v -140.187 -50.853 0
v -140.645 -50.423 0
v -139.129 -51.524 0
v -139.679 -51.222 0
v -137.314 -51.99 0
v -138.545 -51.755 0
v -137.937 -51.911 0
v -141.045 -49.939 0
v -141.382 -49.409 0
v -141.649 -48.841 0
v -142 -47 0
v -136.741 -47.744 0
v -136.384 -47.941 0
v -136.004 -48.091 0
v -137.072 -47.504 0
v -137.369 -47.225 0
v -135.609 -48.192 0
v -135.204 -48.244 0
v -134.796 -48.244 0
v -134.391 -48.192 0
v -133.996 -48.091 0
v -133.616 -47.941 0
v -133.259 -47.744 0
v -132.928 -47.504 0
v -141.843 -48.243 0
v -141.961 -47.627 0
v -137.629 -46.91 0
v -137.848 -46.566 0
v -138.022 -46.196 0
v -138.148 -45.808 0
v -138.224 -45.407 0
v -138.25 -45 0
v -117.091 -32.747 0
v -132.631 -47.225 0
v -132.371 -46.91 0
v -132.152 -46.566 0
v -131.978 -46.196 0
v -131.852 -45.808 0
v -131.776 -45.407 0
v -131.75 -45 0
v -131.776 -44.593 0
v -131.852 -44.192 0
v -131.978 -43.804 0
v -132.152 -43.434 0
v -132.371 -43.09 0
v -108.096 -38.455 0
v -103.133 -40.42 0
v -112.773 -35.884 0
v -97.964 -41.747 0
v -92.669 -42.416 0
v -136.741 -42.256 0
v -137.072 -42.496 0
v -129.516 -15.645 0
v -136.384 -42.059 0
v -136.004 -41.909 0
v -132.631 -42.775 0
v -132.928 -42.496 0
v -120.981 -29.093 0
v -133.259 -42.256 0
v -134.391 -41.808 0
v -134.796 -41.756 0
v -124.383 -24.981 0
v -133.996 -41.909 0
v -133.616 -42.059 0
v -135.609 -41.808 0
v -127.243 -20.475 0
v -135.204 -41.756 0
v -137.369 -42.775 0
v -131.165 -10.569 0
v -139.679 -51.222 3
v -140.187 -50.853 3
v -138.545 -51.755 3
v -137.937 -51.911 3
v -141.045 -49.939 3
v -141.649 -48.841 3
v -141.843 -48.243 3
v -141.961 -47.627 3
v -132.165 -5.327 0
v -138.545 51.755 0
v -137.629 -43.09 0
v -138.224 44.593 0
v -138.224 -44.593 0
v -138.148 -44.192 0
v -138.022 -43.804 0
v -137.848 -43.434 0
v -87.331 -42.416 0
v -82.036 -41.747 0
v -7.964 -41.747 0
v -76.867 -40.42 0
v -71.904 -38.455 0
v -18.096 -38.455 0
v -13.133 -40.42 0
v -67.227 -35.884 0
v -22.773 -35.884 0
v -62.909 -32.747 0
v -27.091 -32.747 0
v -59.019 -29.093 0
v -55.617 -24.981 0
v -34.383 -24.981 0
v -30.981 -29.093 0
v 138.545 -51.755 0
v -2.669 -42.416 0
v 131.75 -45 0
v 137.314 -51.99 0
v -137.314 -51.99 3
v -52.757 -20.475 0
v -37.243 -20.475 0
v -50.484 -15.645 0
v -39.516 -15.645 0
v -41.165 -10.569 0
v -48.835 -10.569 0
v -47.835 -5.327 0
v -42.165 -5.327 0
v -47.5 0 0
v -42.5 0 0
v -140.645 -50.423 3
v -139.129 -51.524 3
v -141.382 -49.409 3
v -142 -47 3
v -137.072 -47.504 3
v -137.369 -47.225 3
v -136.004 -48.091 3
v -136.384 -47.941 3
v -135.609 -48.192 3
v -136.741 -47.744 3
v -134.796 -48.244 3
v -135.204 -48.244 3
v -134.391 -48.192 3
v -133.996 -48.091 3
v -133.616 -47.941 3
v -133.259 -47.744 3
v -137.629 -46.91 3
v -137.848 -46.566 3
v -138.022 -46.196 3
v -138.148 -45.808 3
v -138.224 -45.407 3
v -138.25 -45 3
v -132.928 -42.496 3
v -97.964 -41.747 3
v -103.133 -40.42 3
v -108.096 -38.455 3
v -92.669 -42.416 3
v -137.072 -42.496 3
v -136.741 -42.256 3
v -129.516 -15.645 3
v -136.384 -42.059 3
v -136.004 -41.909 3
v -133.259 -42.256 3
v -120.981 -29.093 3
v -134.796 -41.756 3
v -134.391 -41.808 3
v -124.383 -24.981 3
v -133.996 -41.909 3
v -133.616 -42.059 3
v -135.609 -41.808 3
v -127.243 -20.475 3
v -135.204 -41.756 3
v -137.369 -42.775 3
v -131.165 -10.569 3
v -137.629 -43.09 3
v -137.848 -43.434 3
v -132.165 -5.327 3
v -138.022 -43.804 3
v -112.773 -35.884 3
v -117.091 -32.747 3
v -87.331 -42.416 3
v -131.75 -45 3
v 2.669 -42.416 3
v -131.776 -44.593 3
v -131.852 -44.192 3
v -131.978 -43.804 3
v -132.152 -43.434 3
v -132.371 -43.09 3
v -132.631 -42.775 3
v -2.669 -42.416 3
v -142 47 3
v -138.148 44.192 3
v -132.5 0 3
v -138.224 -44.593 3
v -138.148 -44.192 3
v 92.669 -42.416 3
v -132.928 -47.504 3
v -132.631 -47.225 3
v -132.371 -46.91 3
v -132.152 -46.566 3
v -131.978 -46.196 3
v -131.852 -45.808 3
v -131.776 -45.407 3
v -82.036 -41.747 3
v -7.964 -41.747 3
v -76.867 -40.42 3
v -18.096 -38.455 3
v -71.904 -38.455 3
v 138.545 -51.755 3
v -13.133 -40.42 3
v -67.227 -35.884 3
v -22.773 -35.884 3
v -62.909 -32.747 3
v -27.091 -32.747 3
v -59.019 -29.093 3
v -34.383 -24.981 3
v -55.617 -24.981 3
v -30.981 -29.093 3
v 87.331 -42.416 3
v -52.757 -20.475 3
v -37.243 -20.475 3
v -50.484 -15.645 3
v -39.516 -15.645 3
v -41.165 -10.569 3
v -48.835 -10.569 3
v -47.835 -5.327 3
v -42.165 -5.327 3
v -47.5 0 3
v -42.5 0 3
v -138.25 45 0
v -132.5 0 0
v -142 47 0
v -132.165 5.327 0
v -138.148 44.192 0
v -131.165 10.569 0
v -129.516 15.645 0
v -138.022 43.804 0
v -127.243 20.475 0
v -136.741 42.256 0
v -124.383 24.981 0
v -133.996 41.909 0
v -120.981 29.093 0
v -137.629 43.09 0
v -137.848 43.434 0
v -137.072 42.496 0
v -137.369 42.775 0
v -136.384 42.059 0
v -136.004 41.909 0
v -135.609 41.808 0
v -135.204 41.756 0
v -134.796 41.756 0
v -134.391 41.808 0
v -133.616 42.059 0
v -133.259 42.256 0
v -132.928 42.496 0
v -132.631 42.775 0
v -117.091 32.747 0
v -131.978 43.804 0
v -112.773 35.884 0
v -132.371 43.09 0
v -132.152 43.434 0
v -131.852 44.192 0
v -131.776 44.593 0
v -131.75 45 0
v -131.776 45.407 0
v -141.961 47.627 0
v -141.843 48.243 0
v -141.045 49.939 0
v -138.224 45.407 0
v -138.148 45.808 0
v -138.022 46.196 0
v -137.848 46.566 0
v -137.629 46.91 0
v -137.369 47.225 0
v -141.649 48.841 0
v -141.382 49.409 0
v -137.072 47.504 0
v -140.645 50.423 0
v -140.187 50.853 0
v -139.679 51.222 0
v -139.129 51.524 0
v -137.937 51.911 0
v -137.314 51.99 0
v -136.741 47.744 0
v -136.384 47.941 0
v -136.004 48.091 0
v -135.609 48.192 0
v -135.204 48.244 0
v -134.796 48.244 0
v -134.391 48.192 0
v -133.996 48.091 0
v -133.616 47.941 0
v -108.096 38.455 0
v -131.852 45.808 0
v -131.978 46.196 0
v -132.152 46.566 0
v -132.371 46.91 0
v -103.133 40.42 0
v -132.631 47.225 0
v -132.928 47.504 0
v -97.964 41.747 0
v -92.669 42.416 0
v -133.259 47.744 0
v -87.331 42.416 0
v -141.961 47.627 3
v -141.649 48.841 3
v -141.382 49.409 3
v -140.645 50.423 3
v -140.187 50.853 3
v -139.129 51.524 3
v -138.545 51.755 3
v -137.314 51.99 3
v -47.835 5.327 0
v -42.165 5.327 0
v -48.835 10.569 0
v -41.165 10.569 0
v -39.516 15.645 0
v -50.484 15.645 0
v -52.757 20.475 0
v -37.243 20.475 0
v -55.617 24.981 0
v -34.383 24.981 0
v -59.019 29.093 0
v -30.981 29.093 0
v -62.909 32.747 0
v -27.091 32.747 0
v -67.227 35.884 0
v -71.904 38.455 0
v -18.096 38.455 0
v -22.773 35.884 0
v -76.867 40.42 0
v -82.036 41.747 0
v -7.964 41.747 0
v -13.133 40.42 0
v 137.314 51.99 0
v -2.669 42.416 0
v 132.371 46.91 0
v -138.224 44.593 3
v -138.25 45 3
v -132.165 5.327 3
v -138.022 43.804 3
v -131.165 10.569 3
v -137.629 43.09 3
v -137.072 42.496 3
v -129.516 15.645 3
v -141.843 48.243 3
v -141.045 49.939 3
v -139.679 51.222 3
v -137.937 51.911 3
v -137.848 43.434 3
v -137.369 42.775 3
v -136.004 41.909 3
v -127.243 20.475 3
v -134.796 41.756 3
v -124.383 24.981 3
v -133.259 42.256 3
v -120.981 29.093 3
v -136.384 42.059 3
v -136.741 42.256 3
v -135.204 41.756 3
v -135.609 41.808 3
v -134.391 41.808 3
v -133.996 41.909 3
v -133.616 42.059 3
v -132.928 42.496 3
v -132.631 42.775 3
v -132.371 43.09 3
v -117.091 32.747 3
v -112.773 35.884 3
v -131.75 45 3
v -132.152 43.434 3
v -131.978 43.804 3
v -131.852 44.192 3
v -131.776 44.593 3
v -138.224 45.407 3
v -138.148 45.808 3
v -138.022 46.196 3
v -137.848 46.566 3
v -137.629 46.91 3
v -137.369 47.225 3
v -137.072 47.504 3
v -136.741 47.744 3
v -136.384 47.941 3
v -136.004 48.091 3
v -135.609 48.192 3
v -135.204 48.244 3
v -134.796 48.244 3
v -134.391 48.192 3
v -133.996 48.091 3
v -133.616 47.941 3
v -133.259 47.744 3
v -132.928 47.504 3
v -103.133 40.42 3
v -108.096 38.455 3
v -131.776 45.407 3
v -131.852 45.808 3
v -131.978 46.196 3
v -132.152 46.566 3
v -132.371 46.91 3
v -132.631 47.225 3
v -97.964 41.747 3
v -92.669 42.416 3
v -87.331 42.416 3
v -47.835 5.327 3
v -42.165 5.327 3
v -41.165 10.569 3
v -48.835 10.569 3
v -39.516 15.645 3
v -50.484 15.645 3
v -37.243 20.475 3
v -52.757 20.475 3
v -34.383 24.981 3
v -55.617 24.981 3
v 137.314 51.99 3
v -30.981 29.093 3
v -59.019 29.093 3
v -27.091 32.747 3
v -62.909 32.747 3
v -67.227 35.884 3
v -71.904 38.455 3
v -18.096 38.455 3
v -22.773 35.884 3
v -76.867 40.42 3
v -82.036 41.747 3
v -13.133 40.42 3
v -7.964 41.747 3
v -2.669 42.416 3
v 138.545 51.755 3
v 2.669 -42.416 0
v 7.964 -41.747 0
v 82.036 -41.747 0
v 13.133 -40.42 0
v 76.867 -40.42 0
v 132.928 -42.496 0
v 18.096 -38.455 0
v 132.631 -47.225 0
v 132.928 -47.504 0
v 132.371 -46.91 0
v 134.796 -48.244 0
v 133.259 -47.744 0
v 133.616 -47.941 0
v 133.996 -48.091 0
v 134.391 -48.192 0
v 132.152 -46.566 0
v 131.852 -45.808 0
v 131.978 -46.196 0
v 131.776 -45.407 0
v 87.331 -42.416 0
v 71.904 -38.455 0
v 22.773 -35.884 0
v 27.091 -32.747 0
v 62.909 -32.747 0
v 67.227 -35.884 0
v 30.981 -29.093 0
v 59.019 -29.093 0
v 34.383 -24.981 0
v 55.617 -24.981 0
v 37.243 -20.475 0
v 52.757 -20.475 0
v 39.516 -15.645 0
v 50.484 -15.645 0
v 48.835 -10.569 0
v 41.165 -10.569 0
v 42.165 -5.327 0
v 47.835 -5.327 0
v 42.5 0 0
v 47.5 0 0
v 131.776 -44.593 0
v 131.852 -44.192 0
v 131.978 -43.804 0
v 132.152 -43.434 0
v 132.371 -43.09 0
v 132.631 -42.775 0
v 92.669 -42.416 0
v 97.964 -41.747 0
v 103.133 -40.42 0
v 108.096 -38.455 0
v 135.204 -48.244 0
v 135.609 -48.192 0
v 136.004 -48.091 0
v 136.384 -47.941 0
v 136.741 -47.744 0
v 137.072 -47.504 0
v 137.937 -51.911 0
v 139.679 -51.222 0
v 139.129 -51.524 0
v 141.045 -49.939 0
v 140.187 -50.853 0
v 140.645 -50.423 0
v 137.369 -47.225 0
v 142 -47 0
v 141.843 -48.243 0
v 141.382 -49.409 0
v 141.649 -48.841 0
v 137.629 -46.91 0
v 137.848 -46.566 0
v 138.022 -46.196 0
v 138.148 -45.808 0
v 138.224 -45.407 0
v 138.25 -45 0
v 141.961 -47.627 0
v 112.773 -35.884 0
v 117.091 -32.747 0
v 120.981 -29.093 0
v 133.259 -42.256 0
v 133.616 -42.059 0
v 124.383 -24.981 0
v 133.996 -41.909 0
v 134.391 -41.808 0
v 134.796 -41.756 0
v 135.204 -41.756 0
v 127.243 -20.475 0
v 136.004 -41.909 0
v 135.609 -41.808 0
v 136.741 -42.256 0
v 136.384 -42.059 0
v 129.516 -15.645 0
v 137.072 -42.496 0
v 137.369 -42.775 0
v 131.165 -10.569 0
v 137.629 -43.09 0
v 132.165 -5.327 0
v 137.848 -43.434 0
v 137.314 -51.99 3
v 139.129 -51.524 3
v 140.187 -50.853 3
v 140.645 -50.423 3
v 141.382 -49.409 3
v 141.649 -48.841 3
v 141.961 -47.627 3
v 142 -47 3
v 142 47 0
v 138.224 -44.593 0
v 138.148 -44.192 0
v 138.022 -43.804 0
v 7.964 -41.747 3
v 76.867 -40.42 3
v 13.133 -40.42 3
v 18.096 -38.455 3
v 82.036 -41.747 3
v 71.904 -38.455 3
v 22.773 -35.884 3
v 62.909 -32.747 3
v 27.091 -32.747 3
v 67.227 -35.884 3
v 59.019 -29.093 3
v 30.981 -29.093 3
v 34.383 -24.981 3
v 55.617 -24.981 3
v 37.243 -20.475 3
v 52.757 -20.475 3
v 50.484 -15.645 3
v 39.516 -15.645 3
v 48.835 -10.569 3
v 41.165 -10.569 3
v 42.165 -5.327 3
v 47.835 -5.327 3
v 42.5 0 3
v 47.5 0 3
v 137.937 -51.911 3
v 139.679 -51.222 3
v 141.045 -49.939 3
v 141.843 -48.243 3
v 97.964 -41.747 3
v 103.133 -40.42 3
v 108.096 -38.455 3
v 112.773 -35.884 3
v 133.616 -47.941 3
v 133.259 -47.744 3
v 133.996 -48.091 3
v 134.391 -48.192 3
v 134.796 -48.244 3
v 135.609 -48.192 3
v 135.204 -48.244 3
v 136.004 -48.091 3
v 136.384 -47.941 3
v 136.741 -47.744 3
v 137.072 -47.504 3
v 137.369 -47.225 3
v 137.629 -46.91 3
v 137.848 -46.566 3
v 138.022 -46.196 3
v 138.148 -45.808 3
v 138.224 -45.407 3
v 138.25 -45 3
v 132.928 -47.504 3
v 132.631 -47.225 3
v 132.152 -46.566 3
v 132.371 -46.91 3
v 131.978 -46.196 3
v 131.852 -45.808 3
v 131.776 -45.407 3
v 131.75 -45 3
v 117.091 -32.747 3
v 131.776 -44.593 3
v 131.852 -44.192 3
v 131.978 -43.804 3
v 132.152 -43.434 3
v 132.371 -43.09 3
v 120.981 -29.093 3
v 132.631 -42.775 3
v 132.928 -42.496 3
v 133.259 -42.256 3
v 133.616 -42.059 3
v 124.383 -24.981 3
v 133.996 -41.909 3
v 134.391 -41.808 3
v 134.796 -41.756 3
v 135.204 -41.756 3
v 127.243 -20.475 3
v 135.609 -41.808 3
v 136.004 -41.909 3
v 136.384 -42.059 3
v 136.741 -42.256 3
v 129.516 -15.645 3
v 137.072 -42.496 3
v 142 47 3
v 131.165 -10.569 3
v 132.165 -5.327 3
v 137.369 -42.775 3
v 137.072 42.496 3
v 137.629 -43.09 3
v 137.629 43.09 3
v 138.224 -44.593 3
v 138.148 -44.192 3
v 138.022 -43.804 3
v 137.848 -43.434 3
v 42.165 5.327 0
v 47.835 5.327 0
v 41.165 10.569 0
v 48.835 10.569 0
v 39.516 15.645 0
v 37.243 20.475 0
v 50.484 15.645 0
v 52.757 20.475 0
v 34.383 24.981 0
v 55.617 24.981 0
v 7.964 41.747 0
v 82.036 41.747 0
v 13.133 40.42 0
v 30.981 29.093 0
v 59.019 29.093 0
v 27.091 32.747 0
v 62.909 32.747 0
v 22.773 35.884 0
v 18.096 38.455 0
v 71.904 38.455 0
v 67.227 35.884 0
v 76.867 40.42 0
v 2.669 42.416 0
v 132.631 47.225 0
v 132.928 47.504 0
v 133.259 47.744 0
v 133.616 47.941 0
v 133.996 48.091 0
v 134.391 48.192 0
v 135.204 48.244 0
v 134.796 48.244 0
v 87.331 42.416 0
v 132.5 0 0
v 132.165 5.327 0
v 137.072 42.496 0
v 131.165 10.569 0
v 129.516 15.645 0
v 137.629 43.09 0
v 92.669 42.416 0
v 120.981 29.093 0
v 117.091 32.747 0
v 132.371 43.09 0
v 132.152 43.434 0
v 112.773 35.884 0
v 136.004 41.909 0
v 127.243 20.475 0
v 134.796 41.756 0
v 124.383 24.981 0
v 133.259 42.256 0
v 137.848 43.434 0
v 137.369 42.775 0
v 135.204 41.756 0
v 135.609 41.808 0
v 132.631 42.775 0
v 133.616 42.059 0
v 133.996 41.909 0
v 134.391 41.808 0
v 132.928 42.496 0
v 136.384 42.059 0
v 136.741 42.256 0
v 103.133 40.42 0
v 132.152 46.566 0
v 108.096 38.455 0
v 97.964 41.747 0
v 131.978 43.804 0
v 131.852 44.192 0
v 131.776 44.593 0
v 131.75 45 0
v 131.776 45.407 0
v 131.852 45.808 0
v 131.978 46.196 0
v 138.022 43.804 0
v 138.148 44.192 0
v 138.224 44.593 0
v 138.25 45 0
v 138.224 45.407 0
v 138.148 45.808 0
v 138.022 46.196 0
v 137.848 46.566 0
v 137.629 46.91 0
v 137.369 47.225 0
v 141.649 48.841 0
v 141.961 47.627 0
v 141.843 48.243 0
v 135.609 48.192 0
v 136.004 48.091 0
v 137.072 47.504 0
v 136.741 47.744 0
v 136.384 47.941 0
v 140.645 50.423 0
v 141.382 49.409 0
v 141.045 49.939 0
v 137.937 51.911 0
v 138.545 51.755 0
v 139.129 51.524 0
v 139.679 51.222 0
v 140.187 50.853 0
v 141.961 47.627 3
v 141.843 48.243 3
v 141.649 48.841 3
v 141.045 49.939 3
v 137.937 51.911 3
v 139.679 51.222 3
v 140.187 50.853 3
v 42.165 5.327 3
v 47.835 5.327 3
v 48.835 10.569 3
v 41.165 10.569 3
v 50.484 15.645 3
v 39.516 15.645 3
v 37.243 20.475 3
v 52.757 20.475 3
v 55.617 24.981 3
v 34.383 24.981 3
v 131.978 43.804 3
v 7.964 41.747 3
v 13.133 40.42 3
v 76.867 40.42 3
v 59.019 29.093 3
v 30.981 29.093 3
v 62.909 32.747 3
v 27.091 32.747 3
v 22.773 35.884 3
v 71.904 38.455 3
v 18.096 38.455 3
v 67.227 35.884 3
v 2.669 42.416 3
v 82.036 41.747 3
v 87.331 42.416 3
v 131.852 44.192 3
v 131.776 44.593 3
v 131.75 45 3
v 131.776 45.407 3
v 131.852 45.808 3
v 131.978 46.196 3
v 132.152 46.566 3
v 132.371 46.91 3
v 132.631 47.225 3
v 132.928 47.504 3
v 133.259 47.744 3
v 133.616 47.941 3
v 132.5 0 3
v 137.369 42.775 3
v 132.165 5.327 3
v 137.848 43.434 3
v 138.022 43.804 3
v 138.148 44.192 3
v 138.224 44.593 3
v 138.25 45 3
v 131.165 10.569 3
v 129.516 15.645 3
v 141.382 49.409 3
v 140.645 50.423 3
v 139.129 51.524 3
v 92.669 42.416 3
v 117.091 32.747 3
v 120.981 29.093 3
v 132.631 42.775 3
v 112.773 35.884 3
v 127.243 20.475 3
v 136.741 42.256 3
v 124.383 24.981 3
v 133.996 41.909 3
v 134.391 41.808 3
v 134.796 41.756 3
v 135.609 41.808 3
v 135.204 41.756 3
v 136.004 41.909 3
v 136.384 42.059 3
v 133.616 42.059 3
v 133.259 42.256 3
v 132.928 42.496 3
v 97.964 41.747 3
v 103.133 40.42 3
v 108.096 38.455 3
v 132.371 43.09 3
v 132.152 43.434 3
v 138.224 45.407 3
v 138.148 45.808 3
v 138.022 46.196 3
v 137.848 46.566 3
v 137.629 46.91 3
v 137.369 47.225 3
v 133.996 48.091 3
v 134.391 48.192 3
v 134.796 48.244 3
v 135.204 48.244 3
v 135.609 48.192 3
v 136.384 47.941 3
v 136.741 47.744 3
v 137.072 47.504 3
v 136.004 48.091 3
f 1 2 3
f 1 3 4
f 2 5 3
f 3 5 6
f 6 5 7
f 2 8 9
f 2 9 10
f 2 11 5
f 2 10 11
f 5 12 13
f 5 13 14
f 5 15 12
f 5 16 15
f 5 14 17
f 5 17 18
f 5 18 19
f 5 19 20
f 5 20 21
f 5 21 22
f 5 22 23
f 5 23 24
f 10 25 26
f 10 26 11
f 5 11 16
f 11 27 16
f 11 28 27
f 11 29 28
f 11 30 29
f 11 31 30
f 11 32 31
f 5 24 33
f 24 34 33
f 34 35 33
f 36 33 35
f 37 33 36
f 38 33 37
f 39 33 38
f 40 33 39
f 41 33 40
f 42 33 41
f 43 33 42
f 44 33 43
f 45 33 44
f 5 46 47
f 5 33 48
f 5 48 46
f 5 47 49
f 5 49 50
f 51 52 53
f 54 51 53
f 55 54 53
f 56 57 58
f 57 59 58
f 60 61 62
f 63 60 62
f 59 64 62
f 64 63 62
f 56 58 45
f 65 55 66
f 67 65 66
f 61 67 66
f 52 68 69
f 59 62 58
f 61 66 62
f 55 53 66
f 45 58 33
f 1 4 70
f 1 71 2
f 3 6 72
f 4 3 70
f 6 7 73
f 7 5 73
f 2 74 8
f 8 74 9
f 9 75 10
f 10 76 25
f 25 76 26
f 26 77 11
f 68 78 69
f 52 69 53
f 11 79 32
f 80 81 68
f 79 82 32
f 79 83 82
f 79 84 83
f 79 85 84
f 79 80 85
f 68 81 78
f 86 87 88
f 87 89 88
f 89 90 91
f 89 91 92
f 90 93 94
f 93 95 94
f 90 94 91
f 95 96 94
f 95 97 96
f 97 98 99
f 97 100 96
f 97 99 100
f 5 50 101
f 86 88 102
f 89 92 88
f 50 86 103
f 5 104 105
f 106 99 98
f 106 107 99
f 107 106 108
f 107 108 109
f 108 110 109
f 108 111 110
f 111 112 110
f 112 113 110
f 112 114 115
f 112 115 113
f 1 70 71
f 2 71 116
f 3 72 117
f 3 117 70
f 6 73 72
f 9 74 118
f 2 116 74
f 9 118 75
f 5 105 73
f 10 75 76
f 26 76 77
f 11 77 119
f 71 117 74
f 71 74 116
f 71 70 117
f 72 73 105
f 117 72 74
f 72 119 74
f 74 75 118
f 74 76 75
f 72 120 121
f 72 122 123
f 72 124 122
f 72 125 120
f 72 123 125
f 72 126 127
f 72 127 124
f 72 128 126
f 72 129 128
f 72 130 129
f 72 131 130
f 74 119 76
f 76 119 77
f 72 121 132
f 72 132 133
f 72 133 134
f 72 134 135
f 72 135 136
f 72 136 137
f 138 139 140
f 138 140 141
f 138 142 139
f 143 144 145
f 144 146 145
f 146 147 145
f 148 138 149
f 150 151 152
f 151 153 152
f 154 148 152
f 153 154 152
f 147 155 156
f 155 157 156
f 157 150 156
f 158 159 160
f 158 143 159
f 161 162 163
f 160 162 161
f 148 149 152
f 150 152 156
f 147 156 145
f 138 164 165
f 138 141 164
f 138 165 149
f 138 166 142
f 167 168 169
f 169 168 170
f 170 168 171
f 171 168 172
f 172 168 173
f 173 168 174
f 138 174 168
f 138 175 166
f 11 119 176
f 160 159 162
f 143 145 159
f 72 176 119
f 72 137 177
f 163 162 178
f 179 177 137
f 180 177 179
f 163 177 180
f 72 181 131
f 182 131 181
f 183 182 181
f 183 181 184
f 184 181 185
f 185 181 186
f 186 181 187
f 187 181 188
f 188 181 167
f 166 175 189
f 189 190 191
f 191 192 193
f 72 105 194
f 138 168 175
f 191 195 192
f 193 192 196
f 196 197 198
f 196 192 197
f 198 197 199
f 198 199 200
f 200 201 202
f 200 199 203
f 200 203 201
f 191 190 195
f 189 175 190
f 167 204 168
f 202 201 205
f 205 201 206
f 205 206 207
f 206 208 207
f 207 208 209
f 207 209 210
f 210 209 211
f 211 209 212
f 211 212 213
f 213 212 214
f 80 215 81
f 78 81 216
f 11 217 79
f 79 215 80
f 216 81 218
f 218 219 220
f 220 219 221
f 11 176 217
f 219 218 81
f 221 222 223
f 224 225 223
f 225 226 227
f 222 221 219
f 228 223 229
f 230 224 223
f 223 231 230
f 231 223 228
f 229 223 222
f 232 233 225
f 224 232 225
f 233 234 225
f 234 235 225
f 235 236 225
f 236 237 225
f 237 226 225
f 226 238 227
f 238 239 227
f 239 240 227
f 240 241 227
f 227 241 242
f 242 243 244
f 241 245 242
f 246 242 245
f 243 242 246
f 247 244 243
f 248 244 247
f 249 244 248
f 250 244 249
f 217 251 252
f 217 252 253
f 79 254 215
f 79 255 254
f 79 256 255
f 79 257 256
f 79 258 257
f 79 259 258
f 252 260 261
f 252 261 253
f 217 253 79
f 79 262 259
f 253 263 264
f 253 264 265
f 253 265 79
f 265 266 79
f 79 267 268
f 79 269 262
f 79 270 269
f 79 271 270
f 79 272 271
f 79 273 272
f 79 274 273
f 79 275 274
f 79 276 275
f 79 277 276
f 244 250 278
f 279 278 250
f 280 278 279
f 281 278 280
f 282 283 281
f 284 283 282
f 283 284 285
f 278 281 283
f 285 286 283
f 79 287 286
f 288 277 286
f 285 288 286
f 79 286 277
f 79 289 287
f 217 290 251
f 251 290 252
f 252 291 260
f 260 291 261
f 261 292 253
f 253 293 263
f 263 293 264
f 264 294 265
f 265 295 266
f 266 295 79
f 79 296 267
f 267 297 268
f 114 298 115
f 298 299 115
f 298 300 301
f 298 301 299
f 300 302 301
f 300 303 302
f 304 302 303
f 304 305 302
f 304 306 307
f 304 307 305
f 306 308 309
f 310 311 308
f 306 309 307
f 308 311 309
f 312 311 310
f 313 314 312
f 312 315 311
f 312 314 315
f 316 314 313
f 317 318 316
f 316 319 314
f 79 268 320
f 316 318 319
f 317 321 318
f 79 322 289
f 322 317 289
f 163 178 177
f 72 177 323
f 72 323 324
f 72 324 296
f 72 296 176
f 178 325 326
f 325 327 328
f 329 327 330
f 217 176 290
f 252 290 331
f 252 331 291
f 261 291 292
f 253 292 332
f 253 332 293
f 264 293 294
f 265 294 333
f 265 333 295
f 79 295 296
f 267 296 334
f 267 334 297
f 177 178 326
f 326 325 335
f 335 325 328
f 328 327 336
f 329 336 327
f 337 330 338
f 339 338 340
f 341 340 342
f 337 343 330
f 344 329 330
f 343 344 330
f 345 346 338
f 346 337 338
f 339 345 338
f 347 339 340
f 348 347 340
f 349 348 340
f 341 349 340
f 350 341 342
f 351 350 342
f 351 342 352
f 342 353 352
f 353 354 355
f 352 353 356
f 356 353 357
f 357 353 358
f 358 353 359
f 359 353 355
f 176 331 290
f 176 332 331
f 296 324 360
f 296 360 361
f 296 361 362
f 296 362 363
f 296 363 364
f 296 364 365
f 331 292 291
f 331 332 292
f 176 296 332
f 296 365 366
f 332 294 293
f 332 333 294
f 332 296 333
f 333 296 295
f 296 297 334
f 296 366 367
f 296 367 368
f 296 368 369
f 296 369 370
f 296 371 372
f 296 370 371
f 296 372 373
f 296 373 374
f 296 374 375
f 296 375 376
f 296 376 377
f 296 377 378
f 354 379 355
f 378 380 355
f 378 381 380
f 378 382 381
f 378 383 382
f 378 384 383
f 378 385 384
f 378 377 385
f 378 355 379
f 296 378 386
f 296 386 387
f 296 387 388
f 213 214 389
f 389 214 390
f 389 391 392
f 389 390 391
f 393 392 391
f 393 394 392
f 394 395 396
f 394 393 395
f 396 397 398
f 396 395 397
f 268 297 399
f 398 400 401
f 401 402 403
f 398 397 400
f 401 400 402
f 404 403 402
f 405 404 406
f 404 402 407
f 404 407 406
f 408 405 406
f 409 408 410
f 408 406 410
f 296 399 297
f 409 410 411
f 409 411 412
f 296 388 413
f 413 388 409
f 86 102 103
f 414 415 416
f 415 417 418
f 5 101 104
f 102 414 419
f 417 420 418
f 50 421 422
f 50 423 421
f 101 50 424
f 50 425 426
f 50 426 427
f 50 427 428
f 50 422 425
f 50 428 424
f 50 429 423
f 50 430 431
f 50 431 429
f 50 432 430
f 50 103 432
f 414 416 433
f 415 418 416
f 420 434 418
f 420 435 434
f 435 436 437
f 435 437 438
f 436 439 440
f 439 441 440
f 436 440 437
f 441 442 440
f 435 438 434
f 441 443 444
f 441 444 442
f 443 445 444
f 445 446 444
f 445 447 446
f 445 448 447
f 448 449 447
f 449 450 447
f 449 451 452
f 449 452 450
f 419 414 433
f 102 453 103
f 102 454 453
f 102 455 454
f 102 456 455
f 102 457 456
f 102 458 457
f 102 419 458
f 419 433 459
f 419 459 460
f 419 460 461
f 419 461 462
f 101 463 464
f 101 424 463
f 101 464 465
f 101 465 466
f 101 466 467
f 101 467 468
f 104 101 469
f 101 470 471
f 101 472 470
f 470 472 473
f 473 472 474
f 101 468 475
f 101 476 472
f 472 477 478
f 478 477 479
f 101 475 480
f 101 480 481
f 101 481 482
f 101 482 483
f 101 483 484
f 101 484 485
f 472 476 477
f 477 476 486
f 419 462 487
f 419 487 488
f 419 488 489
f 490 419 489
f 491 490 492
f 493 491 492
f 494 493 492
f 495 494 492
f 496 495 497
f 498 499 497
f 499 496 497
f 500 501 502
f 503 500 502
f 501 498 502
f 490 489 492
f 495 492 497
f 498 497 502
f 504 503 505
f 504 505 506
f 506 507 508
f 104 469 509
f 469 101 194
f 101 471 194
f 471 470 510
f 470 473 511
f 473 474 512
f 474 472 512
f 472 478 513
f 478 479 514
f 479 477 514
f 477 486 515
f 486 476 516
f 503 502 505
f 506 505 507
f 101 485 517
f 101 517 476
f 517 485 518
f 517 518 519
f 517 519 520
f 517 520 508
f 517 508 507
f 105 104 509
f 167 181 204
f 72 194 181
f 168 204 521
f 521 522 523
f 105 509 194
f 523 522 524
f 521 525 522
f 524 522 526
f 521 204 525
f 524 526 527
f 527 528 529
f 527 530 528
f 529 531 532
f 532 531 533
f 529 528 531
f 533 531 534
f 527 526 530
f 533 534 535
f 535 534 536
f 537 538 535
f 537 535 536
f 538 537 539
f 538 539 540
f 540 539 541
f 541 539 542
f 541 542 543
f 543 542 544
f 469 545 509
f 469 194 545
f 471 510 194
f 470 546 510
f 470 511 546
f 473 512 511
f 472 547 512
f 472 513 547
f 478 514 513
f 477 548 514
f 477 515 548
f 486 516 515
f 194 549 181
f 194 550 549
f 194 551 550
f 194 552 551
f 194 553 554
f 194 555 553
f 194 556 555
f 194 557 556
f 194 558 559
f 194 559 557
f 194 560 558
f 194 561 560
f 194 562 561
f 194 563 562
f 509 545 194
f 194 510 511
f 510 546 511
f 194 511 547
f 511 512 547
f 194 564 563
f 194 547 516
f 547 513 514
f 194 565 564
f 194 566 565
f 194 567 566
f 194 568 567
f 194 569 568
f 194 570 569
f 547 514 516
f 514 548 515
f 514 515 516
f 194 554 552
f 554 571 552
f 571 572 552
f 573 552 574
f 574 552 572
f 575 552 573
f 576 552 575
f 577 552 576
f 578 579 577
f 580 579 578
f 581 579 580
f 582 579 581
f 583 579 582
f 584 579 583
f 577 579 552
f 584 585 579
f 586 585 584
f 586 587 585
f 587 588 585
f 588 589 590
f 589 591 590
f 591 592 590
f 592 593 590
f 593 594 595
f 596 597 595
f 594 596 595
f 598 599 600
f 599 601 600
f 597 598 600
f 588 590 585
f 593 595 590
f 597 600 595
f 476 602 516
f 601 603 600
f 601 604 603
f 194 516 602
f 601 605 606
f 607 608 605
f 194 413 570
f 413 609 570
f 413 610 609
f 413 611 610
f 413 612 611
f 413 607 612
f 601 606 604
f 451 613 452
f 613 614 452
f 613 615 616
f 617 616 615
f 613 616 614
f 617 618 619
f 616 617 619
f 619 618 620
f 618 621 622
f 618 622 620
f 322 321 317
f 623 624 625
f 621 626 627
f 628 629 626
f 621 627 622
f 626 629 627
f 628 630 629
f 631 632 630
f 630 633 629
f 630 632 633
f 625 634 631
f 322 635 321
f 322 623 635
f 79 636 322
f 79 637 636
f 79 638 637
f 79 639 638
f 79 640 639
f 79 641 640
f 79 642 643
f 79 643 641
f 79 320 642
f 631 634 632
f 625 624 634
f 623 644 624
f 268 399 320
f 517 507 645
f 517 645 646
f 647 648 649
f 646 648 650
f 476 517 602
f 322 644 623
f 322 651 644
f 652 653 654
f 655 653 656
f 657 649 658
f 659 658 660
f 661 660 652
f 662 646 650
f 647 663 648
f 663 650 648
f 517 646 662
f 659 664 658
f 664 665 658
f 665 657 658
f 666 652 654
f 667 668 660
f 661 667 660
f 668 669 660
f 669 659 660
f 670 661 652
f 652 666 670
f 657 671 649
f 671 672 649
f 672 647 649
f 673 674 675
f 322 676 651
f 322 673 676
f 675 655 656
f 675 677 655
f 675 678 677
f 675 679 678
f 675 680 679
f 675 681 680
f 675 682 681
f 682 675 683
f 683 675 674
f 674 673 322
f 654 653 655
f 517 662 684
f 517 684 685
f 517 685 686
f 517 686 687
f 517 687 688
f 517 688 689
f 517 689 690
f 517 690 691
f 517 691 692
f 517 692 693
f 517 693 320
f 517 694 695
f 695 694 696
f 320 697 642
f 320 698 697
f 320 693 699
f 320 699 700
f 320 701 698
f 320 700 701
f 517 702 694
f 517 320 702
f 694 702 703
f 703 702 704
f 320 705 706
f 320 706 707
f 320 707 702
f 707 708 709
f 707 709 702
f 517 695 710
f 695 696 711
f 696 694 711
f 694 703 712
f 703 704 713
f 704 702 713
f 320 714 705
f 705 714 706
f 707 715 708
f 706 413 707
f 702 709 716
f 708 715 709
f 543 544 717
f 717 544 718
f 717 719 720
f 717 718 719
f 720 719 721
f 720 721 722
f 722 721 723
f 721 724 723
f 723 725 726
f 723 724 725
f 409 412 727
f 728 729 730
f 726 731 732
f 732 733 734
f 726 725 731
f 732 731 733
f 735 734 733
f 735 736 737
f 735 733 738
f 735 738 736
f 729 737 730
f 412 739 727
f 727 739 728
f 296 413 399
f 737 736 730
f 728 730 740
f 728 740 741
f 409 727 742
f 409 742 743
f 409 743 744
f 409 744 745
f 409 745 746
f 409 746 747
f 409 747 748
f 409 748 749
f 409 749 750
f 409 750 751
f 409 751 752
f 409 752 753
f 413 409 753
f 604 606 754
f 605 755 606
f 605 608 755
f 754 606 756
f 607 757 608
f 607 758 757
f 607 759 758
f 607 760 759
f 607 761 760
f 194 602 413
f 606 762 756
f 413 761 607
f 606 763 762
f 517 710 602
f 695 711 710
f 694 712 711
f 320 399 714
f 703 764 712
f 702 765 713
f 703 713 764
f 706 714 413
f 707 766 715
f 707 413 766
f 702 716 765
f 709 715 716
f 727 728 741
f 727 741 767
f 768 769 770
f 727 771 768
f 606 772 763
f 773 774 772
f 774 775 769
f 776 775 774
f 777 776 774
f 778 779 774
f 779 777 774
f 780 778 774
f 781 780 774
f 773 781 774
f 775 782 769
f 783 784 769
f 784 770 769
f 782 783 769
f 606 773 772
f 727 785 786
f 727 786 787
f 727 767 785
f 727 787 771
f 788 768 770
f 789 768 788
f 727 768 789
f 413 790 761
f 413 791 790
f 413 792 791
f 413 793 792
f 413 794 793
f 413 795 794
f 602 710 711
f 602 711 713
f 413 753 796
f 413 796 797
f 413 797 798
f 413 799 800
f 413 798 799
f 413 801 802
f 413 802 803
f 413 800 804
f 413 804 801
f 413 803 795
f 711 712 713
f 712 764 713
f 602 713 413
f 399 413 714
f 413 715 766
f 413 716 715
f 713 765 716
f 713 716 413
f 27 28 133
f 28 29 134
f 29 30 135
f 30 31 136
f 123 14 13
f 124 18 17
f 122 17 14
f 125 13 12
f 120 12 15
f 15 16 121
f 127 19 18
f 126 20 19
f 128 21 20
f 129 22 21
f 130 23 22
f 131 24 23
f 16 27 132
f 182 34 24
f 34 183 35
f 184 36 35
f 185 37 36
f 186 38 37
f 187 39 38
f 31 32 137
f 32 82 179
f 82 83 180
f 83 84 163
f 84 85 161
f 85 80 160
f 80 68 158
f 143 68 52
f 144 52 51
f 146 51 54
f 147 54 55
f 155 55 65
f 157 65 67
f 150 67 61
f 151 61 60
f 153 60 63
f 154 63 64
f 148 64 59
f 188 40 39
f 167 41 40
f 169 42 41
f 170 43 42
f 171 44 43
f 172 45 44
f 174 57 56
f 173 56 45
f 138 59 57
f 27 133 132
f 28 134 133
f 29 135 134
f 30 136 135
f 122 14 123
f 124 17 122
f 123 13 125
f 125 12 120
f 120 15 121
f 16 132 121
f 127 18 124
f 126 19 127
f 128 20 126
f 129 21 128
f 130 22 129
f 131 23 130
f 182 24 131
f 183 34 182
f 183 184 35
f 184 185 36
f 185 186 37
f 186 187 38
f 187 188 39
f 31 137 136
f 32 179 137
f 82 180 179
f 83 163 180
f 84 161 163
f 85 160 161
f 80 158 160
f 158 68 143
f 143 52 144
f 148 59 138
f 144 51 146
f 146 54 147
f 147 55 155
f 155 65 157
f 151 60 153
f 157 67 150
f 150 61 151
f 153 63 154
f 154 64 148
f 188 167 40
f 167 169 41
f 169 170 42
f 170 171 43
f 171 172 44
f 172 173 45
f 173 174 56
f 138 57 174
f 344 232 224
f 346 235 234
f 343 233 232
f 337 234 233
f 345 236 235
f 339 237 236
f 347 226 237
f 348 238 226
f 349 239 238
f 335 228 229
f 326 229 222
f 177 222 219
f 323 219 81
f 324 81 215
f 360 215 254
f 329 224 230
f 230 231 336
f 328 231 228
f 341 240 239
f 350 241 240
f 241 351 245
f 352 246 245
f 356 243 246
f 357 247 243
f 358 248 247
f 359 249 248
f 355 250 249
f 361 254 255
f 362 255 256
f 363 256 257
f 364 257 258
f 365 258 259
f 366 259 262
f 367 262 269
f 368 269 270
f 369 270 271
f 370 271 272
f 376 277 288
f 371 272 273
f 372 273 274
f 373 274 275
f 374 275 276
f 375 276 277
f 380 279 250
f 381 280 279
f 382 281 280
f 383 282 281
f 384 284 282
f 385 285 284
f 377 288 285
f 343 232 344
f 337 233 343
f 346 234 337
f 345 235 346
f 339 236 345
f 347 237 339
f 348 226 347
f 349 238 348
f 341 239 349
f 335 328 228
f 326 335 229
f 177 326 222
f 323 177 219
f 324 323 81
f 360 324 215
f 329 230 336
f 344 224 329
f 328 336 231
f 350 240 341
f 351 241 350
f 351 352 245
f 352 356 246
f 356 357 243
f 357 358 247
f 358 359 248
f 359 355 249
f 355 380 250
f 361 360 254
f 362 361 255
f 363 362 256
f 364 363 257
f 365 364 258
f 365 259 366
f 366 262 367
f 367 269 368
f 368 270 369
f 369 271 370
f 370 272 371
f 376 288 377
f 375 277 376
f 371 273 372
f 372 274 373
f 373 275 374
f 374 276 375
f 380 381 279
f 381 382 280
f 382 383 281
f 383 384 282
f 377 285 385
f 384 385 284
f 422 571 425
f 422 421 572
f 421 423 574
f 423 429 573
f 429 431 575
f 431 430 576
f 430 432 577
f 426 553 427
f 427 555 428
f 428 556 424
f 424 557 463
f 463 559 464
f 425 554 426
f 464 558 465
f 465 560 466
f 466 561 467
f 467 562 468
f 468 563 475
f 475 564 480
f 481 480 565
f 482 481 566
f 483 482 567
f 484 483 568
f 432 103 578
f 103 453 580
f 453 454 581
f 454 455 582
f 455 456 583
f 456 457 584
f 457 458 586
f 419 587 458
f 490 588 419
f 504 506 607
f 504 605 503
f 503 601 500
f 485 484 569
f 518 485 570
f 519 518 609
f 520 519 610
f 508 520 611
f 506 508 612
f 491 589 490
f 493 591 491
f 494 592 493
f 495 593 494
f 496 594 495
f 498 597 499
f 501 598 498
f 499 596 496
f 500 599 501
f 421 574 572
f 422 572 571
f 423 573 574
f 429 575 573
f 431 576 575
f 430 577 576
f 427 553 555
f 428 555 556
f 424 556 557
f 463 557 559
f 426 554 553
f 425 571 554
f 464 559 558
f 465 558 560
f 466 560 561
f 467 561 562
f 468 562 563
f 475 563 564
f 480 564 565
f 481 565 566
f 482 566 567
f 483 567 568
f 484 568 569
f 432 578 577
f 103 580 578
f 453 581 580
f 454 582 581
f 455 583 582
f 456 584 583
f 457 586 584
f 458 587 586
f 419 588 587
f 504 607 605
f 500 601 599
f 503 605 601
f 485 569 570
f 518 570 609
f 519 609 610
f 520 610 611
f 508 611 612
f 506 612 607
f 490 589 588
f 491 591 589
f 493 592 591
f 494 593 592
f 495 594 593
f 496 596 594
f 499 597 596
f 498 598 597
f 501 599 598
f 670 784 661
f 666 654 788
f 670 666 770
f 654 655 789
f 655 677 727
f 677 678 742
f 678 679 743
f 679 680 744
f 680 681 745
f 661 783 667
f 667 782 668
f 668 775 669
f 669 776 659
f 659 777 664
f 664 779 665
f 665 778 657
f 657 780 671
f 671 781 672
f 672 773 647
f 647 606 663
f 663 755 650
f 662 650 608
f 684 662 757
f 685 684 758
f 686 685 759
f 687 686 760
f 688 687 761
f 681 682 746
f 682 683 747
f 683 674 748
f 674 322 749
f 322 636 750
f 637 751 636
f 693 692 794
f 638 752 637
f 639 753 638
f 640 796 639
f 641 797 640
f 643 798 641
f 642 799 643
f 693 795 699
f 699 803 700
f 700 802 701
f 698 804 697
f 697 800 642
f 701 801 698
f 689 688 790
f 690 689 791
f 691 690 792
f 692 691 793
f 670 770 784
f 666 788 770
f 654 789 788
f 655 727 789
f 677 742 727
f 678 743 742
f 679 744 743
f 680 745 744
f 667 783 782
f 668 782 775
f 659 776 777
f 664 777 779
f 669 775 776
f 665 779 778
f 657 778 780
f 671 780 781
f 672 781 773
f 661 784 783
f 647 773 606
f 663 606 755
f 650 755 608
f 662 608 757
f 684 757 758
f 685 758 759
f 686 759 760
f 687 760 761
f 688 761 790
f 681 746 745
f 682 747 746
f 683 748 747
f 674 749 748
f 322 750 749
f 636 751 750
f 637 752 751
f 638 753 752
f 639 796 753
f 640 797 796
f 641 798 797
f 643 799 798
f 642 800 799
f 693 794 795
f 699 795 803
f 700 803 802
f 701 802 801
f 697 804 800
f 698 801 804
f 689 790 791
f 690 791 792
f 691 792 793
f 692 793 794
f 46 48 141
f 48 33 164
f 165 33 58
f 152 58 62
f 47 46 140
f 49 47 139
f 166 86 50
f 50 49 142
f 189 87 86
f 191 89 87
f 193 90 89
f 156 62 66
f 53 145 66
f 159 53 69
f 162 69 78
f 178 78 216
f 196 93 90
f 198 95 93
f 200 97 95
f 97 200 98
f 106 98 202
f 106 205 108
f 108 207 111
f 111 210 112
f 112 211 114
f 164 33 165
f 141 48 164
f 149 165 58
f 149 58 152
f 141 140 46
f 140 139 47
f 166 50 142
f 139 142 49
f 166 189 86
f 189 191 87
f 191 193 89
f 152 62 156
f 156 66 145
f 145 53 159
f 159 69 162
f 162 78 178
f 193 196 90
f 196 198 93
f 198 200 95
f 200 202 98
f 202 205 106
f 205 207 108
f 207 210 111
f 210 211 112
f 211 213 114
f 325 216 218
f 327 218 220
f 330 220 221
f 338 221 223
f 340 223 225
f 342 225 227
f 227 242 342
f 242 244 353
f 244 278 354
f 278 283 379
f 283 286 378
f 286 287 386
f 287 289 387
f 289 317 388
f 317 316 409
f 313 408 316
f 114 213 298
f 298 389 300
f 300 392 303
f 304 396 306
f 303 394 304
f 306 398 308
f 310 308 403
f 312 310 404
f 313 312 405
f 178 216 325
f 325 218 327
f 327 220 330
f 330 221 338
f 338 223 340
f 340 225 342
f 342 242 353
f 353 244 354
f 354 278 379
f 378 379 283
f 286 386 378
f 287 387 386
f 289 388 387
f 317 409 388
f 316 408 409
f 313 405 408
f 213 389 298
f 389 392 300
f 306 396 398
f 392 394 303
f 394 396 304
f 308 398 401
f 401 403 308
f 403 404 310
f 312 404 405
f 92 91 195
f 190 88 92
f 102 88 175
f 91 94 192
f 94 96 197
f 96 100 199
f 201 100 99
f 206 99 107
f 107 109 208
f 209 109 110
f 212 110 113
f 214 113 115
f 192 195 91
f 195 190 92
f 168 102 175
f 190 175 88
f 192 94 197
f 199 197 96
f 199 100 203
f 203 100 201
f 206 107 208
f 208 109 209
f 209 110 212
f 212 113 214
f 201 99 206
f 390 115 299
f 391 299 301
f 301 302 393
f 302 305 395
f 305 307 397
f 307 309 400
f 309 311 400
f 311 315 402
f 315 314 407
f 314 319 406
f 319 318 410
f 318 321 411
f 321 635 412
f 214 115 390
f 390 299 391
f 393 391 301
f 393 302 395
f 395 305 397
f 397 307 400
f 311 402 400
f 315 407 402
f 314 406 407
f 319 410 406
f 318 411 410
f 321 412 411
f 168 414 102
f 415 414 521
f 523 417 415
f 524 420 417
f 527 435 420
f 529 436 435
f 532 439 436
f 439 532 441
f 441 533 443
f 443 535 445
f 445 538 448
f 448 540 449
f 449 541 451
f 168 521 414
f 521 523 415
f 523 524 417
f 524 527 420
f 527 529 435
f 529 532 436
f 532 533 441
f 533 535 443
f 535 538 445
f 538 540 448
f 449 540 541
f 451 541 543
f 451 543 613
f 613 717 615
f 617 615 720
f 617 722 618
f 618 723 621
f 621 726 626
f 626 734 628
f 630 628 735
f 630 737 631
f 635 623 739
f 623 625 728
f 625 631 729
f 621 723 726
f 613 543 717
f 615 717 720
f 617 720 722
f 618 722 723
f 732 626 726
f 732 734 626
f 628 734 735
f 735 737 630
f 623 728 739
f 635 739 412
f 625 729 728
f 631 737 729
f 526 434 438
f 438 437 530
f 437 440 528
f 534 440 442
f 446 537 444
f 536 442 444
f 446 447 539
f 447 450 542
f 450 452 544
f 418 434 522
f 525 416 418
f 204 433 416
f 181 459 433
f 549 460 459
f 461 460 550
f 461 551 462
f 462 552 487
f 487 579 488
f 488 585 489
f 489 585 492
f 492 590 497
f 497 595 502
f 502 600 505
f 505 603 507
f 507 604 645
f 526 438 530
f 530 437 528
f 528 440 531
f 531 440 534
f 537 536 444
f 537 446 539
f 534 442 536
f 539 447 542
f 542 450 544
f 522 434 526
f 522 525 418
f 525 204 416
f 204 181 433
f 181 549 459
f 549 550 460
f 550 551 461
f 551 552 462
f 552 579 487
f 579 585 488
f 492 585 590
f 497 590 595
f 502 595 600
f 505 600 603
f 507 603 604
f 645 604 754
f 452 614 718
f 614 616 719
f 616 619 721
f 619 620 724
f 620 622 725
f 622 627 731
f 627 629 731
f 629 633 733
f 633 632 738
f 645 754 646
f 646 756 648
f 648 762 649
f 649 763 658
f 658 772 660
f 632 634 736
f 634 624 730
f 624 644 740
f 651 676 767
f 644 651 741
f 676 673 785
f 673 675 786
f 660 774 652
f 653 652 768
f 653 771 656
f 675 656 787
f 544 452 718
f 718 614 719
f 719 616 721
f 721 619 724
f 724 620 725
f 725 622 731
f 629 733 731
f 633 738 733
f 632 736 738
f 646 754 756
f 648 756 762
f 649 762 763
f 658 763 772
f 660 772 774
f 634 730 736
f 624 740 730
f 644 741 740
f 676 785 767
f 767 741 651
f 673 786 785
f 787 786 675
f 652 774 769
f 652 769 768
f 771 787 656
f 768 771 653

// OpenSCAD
$fn = 50;

difference() {
	union() {
		hull() {
			translate(v = [-137.0, 47.0, 0]) {
				cylinder(h = 3, r = 5);
			}
			translate(v = [137.0, 47.0, 0]) {
				cylinder(h = 3, r = 5);
			}
			translate(v = [-137.0, -47.0, 0]) {
				cylinder(h = 3, r = 5);
			}
			translate(v = [137.0, -47.0, 0]) {
				cylinder(h = 3, r = 5);
			}
		}
	}
	union() {
		translate(v = [-135.0, -45.0, -100.0]) {
			cylinder(h = 200, r = 3.25);
		}
		translate(v = [-135.0, 45.0, -100.0]) {
			cylinder(h = 200, r = 3.25);
		}
		translate(v = [135.0, -45.0, -100.0]) {
			cylinder(h = 200, r = 3.25);
		}
		translate(v = [135.0, 45.0, -100.0]) {
			cylinder(h = 200, r = 3.25);
		}
		translate(v = [-135.0, -45.0, -100.0]) {
			cylinder(h = 200, r = 1.8);
		}
		translate(v = [-135.0, 45.0, -100.0]) {
			cylinder(h = 200, r = 1.8);
		}
		translate(v = [135.0, -45.0, -100.0]) {
			cylinder(h = 200, r = 1.8);
		}
		translate(v = [135.0, 45.0, -100.0]) {
			cylinder(h = 200, r = 1.8);
		}
		translate(v = [-90.0, 0, 0.0]) {
			cylinder(h = 3, r = 42.5);
		}
		cylinder(h = 3, r = 42.5);
		translate(v = [90.0, 0, 0.0]) {
			cylinder(h = 3, r = 42.5);
		}
	}
}
